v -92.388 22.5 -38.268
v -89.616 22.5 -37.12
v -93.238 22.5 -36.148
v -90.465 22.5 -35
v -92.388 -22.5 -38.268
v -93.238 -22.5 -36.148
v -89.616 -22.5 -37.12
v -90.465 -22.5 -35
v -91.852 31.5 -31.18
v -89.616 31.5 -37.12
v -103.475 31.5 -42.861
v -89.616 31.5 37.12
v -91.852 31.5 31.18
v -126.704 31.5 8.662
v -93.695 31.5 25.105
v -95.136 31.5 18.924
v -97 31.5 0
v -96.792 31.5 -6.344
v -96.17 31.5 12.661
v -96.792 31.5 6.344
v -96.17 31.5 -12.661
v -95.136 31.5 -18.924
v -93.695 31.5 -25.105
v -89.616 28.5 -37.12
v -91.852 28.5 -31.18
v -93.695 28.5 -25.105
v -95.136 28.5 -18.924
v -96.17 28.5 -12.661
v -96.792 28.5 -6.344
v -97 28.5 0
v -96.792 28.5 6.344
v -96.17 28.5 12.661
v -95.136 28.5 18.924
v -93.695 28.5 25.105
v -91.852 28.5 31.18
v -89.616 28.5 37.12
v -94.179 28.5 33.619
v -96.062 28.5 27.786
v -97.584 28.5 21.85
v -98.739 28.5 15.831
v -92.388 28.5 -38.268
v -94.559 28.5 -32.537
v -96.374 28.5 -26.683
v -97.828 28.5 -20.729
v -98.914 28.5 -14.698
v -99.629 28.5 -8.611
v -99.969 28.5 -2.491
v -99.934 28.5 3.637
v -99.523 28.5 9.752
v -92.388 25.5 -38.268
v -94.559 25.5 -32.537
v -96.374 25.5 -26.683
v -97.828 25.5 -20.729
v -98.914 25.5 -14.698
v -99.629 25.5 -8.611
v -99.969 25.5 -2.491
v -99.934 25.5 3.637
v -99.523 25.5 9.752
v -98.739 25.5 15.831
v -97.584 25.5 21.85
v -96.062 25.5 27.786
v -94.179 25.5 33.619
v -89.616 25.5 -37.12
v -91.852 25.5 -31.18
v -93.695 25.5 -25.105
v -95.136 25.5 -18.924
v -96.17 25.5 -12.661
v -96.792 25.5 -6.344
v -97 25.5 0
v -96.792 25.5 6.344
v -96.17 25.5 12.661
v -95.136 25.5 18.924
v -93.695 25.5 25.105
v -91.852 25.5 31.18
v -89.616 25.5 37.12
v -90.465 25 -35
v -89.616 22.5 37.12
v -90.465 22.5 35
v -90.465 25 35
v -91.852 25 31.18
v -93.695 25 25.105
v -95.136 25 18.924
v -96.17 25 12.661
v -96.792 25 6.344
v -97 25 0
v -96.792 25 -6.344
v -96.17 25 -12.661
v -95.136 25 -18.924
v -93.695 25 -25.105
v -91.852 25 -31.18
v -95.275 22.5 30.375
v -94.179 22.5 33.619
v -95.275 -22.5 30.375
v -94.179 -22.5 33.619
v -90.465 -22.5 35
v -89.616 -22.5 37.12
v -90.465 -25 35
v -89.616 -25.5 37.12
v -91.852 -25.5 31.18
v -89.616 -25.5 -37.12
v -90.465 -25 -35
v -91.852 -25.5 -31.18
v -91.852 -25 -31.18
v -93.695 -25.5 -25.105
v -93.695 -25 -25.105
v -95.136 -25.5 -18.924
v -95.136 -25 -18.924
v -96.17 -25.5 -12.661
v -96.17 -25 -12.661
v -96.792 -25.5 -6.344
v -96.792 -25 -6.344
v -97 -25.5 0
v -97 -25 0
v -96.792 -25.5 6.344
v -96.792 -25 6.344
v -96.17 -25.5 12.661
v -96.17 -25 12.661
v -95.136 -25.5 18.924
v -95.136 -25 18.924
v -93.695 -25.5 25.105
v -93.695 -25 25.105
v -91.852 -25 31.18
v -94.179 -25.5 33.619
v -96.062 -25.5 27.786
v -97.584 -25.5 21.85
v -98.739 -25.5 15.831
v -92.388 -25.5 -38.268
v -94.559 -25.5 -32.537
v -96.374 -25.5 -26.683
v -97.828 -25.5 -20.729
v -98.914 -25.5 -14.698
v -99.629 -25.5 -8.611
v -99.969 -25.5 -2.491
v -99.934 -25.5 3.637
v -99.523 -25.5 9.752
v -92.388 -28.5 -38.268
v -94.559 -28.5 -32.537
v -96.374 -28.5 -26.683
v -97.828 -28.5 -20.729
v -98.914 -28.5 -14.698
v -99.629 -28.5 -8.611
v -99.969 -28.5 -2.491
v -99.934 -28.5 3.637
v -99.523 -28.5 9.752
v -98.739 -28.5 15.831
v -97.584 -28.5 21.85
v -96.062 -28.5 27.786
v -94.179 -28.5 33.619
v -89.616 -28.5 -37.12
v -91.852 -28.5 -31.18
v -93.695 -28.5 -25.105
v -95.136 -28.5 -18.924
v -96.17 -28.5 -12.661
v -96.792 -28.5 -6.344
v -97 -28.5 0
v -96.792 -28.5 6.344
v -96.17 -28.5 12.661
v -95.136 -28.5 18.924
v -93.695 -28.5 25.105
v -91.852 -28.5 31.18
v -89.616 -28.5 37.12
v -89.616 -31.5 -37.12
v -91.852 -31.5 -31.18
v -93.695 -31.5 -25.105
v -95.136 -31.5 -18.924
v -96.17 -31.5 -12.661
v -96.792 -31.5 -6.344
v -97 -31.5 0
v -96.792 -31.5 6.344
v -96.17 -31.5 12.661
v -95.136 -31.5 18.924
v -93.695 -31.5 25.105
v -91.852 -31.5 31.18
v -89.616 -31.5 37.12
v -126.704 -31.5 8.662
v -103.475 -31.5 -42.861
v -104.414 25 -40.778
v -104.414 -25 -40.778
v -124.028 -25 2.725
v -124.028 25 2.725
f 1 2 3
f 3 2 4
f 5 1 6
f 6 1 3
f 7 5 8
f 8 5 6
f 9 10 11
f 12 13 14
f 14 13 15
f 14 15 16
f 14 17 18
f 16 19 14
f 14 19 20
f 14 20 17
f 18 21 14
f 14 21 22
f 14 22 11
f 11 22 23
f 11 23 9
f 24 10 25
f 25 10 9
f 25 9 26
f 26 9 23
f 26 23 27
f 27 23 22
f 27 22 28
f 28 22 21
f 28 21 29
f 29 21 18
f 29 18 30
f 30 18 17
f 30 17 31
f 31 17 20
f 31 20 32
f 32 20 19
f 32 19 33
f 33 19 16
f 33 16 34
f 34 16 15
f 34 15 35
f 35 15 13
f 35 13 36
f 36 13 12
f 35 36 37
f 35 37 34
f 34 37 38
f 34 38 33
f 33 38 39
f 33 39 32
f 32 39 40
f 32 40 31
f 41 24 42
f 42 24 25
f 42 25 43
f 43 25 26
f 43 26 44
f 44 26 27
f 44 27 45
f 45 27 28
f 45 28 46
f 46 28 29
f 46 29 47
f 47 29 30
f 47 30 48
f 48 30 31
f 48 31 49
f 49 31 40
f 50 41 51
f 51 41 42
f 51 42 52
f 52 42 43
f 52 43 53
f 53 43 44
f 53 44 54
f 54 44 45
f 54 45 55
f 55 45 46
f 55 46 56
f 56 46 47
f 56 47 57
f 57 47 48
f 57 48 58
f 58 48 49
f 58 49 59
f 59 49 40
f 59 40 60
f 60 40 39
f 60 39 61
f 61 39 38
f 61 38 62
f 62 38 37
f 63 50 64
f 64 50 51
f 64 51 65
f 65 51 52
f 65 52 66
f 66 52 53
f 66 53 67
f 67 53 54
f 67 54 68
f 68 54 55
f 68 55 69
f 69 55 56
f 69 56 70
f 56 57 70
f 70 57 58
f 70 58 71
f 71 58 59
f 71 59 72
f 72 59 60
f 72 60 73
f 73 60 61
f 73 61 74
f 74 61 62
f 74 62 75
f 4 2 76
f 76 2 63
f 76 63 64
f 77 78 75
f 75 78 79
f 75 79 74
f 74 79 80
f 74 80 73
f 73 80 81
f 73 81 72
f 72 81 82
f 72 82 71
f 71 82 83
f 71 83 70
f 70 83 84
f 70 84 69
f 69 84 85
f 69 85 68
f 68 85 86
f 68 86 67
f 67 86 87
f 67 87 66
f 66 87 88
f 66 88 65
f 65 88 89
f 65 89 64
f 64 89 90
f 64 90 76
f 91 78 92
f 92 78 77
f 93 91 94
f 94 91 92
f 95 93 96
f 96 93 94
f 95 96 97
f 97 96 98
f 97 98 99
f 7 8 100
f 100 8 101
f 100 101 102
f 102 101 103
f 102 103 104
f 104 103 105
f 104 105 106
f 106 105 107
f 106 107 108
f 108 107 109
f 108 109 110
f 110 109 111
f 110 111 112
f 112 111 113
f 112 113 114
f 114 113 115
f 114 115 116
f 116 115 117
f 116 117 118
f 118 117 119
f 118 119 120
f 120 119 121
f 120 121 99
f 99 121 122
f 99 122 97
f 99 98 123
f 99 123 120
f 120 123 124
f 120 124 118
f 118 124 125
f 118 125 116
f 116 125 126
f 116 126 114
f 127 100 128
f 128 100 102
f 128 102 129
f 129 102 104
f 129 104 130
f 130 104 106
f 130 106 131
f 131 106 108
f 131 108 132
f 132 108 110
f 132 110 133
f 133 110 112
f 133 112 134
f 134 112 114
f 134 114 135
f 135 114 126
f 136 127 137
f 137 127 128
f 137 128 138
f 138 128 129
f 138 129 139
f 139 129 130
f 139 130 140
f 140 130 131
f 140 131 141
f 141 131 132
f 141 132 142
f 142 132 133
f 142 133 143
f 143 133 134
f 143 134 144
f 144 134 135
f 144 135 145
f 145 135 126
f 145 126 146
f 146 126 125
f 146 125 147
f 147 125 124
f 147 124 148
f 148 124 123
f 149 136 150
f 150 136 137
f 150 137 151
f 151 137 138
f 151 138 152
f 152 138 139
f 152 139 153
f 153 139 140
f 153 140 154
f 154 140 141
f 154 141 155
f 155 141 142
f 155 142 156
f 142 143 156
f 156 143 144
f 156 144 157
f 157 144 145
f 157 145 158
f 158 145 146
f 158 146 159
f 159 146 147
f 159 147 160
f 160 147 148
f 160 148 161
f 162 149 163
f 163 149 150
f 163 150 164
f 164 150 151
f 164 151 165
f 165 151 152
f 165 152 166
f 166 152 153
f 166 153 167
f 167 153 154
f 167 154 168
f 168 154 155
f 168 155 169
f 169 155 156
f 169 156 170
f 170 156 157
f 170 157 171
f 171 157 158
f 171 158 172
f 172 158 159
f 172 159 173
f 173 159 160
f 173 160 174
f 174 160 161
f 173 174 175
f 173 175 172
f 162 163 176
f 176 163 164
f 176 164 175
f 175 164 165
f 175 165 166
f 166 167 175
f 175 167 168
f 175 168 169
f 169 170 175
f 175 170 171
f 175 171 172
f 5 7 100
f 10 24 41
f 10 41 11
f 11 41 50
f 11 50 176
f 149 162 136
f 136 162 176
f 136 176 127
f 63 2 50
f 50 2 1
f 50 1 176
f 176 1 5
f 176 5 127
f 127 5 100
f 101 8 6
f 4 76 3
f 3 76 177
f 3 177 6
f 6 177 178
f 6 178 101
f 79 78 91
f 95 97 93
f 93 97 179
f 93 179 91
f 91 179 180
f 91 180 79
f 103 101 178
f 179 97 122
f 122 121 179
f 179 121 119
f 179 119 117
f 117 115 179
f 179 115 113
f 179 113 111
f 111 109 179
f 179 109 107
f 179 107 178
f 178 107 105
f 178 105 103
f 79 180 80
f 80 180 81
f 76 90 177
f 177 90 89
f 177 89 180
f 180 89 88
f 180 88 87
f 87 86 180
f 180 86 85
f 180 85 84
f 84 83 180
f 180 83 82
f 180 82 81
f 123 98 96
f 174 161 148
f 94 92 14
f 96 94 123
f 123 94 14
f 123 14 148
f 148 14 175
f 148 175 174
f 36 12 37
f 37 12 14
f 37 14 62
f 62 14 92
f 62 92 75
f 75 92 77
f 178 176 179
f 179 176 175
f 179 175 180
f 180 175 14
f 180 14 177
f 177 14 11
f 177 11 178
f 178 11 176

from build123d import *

# Parameters (mm, degrees)
R_VOLUTION1_ANGLE       = 45
ENL_V_MAT_EXTRU_1_DEPTH = 25
ENL_V_MAT_EXTRU_2_DEPTH = 64
ENL_V_MAT_EXTRU_3_DEPTH = 64


with BuildPart() as part:
    # Esquisse1 → Révolution1 (revolve, symmetric)
    with BuildSketch(Plane.XY) as r_volution1_sk:
        Polygon((-127, 31.5), (-97, 31.5), (-97, 28.5), (-100, 28.5), (-100, 25.5), (-97, 25.5), (-97, 22.5), (-100, 22.5), (-100, -22.5), (-97, -22.5), (-97, -25.5), (-100, -25.5), (-100, -28.5), (-97, -28.5), (-97, -31.5), (-127, -31.5), align=None)
    revolve(axis=Axis((0, 55, 0), (0, -1, 0)), revolution_arc=R_VOLUTION1_ANGLE / 2)
    revolve(r_volution1_sk.sketch, axis=Axis((0, 55, 0), (0, 1, 0)), revolution_arc=R_VOLUTION1_ANGLE / 2)

    # Esquisse3 → Enlèv. mat.-Extru.1 (cut, symmetric)
    with BuildSketch(Plane(origin=(0, 0, 0), x_dir=(1, 0, 0), z_dir=(0, 1, 0))):
        Polygon((-127, 50.133100711), (-90.465463023, 35), (-90.465463023, -35), (-127, 0.133100711), align=None)
    extrude(amount=ENL_V_MAT_EXTRU_1_DEPTH, both=True, mode=Mode.SUBTRACT)

    # Esquisse4 → Enlèv. mat.-Extru.2 (cut, through all)
    with BuildSketch(Plane(origin=(0, 31.5, 0), x_dir=(1, 0, 0), z_dir=(0, 1, 0))):
        with BuildLine():
            Line((-117.332700629, -48.60079591), (-89.616314654, -37.120292939))
            Line((-89.616314654, -37.120292939), (-126.704281868, -8.661694766))
            ThreePointArc((-126.704281868, -8.661694766), (-123.641801817, -29.012149926), (-117.332700629, -48.60079591))
        make_face()
    extrude(amount=-ENL_V_MAT_EXTRU_2_DEPTH, mode=Mode.SUBTRACT)

    # Esquisse5 → Enlèv. mat.-Extru.3 (cut, through all)
    with BuildSketch(Plane(origin=(0, 31.5, 0), x_dir=(1, 0, 0), z_dir=(0, 1, 0))):
        Polygon((-126.704281868, -8.661694766), (-148.461378706, 8.033112817), (-117.332700629, 48.60079591), (-103.474507641, 42.860544425), align=None)
    extrude(amount=-ENL_V_MAT_EXTRU_3_DEPTH, mode=Mode.SUBTRACT)


solid = part.part
